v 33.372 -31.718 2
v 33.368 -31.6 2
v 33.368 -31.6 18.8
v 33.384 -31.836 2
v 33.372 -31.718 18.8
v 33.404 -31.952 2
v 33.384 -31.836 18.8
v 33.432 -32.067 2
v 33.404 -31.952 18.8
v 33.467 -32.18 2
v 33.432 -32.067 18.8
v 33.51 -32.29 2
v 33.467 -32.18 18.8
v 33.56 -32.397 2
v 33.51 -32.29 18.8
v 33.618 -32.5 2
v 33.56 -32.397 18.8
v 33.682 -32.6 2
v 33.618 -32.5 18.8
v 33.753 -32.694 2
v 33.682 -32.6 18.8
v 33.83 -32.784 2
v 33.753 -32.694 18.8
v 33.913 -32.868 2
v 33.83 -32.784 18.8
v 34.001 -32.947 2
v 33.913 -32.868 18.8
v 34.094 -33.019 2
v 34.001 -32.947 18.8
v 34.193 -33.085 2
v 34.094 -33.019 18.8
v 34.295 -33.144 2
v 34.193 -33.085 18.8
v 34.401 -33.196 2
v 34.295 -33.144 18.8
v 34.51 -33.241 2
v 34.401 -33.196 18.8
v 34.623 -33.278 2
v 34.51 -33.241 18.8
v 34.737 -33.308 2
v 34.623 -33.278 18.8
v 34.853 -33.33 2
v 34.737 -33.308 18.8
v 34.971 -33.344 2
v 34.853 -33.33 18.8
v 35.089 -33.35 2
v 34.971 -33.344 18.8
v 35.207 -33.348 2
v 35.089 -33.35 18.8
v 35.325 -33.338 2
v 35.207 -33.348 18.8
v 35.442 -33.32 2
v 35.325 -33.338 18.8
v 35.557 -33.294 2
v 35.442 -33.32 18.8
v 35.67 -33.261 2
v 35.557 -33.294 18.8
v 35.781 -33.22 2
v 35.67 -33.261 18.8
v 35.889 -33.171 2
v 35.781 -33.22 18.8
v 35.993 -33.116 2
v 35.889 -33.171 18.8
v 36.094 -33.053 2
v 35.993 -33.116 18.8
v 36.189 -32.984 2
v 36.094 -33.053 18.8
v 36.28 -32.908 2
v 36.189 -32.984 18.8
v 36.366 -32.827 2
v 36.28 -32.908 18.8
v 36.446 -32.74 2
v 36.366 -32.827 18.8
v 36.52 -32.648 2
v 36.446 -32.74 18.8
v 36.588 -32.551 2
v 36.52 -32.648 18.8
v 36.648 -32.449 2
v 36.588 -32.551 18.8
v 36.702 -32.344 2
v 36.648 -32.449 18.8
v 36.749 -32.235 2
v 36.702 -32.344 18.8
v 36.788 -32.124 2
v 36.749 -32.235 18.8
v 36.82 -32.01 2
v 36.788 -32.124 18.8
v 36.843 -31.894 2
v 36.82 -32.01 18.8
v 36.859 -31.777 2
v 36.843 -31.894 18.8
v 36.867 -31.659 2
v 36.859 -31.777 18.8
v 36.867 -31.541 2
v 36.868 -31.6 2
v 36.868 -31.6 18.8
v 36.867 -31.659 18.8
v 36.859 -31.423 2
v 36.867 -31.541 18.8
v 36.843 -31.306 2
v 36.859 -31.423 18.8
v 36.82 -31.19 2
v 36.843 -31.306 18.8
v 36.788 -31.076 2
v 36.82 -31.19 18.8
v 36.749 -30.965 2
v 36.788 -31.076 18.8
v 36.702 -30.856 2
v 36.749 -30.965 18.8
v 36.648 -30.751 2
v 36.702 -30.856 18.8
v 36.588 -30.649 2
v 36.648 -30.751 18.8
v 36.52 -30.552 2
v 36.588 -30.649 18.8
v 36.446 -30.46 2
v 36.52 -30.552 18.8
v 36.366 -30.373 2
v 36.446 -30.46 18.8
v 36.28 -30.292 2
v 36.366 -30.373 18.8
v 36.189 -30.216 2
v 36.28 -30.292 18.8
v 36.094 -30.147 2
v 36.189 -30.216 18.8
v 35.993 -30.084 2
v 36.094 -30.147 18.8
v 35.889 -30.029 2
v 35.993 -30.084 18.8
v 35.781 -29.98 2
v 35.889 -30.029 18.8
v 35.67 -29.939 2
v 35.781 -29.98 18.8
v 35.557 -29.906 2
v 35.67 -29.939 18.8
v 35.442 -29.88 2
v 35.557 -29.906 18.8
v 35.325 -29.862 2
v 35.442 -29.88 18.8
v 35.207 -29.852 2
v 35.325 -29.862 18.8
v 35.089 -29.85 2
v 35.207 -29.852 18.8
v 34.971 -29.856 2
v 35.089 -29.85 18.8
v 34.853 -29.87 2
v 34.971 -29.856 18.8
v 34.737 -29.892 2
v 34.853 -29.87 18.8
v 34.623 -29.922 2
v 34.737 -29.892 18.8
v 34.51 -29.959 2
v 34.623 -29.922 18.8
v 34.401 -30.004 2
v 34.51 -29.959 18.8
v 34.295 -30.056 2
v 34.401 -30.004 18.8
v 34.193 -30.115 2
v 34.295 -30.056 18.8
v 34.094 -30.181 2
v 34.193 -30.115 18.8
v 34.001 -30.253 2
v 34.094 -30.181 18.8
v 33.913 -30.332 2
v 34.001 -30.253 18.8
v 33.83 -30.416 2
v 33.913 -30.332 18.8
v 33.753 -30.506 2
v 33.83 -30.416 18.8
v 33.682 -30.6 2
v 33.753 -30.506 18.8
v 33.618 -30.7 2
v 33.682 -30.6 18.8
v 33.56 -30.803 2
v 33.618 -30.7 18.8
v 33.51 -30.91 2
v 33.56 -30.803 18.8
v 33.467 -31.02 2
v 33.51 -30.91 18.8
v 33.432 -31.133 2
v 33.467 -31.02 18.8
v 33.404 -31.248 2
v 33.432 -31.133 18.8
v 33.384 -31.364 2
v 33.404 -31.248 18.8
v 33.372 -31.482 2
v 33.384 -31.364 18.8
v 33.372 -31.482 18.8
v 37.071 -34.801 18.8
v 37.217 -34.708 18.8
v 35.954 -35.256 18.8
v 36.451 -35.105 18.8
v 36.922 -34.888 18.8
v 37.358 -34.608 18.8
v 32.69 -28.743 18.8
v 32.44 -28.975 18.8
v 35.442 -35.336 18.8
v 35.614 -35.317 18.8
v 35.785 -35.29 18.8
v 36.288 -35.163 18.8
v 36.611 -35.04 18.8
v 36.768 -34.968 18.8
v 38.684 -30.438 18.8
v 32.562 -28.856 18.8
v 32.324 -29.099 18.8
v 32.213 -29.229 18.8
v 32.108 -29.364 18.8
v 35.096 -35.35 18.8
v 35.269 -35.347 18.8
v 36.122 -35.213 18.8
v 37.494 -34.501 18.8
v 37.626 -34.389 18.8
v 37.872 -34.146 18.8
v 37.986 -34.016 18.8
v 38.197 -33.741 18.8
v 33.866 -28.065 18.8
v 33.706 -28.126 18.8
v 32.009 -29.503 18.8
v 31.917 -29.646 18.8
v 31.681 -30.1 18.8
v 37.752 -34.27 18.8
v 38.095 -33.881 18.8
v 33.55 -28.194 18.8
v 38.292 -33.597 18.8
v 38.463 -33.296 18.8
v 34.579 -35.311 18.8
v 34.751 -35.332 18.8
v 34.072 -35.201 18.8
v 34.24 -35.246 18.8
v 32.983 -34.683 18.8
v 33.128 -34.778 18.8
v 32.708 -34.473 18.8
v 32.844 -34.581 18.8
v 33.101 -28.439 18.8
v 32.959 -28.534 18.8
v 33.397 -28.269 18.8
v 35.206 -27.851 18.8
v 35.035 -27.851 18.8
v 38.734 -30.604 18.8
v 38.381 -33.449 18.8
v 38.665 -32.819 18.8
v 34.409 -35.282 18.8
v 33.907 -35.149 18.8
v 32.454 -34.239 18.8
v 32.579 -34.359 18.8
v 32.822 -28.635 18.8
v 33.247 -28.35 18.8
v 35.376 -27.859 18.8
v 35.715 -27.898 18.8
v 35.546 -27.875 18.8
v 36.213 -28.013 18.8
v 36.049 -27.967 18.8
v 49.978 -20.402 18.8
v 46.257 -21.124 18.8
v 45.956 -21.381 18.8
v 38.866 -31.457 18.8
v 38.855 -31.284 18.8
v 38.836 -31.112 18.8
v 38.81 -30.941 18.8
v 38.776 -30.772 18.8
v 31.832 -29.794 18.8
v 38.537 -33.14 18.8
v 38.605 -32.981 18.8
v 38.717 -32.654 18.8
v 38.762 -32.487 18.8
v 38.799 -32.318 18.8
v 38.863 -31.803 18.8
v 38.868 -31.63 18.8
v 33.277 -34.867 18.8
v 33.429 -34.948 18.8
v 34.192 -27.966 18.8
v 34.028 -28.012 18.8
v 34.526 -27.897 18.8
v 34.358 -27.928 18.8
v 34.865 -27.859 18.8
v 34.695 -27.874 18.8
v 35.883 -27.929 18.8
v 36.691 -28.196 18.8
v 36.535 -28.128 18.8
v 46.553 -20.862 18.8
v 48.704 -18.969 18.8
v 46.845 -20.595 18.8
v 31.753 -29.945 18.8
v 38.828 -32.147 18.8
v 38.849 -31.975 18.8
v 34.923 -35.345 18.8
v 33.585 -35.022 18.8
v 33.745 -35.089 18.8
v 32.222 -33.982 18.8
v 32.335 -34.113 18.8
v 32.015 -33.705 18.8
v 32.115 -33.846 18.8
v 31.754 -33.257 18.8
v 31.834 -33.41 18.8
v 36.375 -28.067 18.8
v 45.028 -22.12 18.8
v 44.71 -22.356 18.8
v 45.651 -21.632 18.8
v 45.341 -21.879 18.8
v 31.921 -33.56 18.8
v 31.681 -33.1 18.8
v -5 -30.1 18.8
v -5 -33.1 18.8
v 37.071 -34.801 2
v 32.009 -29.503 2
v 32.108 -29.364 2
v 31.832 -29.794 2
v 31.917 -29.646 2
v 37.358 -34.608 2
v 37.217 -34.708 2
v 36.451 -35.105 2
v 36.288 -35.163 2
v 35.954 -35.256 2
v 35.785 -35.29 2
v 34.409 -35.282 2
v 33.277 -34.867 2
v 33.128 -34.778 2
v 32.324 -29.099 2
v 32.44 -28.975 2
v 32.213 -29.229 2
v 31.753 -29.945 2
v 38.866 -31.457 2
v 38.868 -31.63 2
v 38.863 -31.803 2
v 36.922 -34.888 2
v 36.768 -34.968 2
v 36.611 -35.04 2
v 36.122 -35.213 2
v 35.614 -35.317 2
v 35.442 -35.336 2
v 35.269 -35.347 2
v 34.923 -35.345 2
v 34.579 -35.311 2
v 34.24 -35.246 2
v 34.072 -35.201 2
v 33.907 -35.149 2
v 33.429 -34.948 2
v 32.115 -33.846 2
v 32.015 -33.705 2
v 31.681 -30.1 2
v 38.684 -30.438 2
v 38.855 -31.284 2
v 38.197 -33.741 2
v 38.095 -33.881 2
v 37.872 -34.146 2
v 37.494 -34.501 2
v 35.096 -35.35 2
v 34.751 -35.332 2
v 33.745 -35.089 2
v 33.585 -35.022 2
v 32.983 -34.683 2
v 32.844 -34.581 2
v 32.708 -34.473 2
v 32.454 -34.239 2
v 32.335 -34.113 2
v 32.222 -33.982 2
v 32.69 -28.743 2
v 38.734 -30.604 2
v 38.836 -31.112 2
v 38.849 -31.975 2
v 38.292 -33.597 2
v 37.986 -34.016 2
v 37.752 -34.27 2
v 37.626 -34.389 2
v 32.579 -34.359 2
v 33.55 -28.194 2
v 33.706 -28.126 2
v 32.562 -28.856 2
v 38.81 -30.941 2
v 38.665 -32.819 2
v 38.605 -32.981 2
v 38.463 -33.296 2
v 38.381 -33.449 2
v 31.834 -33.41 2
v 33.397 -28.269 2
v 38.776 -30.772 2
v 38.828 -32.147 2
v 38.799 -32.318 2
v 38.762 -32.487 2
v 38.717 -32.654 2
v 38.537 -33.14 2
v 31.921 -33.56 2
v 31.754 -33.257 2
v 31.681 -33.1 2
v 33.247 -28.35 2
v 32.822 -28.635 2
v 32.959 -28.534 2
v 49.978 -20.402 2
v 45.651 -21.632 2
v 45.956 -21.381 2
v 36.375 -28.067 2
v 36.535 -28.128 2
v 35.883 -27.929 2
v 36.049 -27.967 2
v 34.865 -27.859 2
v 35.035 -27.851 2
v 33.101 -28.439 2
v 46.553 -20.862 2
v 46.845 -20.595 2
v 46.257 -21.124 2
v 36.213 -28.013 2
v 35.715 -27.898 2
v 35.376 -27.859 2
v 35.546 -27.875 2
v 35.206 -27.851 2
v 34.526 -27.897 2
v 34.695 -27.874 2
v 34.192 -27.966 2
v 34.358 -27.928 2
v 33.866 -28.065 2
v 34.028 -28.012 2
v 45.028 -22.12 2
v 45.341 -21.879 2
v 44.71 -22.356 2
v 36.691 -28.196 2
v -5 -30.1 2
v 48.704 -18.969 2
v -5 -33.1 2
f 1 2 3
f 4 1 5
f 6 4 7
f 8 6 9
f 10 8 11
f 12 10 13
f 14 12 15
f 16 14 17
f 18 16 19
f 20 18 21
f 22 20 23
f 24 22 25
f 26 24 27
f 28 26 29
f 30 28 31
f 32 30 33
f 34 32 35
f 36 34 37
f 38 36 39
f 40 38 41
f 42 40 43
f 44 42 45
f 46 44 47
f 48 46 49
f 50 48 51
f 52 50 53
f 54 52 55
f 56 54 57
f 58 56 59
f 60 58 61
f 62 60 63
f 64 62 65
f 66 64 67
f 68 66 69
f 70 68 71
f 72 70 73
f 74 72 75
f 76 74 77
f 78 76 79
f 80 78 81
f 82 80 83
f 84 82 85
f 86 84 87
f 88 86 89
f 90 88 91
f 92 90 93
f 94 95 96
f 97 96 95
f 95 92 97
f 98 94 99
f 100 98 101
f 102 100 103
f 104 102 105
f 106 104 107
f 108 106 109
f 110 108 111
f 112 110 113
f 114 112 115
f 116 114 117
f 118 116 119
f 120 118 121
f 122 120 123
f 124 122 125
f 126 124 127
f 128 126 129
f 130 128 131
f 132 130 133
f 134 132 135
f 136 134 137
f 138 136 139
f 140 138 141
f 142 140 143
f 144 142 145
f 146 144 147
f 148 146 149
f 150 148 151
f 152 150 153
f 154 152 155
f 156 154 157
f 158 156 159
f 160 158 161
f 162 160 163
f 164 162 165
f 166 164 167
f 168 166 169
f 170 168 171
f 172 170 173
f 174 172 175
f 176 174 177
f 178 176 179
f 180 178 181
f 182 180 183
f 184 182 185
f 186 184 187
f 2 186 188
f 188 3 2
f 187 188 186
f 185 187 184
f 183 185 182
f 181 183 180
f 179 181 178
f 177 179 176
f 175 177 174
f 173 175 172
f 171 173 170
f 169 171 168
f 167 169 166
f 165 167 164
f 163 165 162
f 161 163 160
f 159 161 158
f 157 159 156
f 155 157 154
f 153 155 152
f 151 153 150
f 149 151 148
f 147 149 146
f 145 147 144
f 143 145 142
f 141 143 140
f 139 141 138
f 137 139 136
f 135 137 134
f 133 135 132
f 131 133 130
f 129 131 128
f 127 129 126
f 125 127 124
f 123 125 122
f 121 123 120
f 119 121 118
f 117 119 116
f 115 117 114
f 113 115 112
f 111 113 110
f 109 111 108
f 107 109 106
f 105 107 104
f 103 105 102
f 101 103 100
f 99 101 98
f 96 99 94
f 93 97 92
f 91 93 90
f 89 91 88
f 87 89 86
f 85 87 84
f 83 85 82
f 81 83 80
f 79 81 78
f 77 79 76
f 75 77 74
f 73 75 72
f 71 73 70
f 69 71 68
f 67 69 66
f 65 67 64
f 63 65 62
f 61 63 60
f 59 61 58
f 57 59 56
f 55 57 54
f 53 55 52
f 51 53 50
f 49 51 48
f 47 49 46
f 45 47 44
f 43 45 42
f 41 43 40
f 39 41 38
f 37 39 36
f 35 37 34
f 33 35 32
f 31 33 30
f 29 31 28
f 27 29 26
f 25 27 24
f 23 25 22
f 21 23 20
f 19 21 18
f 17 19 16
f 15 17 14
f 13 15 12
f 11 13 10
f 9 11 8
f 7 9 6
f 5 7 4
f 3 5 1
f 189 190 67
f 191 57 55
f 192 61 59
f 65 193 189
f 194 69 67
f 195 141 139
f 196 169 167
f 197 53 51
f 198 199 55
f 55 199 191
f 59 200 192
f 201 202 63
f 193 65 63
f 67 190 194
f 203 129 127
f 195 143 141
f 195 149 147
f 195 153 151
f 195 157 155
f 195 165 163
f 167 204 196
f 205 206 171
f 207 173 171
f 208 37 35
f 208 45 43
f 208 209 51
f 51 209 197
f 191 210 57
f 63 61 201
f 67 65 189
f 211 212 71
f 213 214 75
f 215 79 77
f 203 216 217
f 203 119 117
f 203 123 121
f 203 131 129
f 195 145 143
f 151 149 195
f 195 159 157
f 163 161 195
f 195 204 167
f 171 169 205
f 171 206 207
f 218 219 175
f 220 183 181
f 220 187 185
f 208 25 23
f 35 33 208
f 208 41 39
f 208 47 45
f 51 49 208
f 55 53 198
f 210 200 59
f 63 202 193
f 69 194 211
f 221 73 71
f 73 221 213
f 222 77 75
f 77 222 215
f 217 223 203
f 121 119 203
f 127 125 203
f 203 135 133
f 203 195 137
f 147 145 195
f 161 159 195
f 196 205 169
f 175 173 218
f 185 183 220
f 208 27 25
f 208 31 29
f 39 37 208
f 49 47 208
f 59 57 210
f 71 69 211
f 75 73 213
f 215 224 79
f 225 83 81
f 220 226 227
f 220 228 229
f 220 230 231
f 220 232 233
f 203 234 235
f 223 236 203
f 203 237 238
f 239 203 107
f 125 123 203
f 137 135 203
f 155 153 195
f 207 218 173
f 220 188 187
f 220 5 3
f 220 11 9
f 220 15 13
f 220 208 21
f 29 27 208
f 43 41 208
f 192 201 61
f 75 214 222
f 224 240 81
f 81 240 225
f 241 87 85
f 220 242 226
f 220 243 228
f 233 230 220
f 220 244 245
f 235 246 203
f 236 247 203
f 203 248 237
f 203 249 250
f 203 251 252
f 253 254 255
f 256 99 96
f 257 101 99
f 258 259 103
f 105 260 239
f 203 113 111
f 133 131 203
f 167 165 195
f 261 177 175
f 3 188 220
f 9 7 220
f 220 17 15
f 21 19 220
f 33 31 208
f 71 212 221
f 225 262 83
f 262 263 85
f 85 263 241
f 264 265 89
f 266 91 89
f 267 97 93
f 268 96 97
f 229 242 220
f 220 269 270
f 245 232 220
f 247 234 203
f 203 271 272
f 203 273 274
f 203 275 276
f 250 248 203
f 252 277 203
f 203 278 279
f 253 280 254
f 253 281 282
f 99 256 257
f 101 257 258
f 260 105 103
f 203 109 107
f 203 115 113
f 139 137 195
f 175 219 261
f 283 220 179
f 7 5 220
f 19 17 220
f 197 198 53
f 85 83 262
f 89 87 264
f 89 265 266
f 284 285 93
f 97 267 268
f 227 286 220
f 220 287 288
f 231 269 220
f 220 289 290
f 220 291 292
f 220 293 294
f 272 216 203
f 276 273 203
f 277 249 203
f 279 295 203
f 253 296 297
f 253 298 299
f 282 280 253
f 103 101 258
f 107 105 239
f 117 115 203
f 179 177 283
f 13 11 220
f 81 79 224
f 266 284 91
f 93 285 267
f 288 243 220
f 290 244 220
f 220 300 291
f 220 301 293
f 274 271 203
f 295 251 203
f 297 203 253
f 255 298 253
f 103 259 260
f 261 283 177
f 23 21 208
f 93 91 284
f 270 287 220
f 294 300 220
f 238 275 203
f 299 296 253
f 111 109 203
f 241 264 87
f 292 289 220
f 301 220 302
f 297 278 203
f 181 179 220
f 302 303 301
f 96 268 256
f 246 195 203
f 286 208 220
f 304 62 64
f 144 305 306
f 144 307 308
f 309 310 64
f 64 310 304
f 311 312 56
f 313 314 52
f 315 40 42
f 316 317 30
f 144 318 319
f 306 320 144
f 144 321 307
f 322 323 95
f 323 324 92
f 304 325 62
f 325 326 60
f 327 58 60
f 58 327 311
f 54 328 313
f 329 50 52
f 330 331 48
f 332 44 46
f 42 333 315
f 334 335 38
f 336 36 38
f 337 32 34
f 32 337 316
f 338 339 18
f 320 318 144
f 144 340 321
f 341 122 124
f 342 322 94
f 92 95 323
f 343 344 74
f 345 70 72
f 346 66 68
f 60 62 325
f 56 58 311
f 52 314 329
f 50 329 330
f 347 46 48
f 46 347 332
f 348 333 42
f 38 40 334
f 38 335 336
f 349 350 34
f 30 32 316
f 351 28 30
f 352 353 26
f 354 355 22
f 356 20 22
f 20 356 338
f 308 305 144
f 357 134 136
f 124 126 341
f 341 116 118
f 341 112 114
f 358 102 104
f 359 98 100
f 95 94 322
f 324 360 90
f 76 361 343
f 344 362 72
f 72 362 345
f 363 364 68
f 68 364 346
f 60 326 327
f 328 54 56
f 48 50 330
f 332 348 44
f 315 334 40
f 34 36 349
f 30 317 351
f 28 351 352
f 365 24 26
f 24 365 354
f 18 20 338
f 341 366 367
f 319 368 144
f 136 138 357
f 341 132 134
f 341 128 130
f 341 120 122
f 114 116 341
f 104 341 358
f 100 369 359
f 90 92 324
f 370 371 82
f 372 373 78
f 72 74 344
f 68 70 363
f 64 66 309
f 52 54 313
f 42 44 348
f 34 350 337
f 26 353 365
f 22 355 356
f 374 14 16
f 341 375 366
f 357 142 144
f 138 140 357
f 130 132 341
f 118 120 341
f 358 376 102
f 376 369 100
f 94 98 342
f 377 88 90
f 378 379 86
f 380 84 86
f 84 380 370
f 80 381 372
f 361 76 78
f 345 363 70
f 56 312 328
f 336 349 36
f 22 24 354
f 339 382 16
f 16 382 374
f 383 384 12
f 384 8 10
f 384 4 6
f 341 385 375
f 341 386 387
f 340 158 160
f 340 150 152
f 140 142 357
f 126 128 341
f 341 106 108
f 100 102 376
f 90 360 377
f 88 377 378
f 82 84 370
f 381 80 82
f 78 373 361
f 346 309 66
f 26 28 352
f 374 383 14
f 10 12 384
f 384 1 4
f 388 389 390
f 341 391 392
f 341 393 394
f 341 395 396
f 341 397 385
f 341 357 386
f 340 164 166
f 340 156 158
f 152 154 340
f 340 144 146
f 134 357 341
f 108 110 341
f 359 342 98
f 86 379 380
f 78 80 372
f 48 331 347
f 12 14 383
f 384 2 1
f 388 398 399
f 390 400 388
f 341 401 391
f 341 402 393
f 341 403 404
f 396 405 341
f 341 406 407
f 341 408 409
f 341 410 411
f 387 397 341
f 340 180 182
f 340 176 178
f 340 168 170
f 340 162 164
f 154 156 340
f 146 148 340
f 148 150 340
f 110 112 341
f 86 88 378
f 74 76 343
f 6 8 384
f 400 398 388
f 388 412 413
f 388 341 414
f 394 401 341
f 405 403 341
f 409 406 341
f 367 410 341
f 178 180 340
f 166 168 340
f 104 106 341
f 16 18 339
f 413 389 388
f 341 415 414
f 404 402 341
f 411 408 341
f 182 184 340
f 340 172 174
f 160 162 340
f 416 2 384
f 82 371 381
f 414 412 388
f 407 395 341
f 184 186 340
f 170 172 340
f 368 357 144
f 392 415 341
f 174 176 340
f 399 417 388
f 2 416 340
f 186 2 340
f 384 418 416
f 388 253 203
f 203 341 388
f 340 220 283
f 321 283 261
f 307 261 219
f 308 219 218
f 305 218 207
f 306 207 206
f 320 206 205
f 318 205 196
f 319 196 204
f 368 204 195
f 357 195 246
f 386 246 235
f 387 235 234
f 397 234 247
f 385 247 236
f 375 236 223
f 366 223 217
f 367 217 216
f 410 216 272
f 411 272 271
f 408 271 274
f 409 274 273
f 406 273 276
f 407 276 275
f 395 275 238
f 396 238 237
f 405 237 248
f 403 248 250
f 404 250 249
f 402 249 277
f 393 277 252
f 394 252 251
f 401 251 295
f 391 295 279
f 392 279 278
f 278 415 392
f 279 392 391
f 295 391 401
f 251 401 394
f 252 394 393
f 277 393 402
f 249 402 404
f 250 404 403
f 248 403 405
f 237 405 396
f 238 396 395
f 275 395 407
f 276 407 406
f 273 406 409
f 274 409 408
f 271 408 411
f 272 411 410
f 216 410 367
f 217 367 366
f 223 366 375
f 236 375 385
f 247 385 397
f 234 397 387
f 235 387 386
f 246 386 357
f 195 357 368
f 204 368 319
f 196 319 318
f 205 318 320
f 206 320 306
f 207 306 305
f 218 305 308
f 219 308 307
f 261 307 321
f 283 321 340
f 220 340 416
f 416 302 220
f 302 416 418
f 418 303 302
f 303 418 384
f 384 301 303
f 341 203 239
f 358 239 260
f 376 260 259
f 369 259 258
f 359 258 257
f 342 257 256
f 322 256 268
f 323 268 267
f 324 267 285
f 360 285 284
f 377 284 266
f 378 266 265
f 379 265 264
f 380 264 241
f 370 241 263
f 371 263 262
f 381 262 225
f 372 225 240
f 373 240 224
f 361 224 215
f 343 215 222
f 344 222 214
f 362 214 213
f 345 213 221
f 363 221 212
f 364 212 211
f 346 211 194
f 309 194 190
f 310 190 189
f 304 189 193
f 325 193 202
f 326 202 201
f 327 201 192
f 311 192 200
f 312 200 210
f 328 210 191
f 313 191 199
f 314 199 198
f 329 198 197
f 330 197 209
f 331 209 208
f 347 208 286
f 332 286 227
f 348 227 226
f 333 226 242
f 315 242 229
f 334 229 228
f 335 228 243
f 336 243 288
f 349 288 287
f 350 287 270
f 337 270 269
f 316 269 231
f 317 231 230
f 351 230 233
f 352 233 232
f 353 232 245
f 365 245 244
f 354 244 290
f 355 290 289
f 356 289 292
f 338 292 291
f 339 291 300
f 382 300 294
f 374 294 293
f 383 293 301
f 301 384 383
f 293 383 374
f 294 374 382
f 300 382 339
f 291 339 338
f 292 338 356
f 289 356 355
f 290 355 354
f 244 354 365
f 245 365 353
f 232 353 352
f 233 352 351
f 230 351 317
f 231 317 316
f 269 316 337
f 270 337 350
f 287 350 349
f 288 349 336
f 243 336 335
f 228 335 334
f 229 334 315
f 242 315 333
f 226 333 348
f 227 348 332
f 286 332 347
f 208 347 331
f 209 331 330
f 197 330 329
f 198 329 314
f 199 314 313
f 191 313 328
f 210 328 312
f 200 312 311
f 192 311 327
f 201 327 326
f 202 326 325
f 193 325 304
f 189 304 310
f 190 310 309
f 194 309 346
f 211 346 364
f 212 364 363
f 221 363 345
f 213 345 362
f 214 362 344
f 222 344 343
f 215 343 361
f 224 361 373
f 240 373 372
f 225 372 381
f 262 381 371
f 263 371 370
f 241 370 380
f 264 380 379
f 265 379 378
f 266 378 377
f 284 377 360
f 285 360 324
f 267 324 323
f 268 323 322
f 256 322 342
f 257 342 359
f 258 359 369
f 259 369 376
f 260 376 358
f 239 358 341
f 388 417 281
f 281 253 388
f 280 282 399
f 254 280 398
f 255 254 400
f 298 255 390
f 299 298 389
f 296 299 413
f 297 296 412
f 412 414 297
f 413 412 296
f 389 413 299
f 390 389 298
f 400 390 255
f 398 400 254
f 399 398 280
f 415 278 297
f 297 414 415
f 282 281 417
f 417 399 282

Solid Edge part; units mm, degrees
sketch "Sketch1" plane through (0, 0, 2) normal (0, 0, 1) x (1, 0, 0)
  line L0 (49.4528, -16.8553) -> (36.691, -28.1957)
  arc A0 (31.6813, -30.1) -> (36.691, -28.1957) centre (35.1183, -31.6) cw
  line L1 (-5, -30.1) -> (31.6813, -30.1)
  line L2 (-5, -30.1) -> (-5, -33.1)
  line L3 (-5, -33.1) -> (31.6813, -33.1)
  line L4 (51.4456, -19.0978) -> (38.6838, -30.4383)
  arc A1 (38.6838, -30.4383) -> (31.6814, -33.1) centre (35.1183, -31.6) cw
  arc A2 (49.4528, -16.8553) -> (51.4456, -19.0978) centre (35.1183, -31.6) cw
  circle A3 centre (35.1183, -31.6) radius 1.75
extrude "ExtrudedProtrusion_1" add sketch "Sketch1" along normal blind 16.8
sketch "Sketch2" plane through (23.2228, -26.1027, 18.8) normal (0, 0, 1) x (-0.7475083, -0.6642525, 0)
  line L0 (-8.6773, 10.5109) -> (-25.7984, 3.6459)
  line L1 (-25.7984, 3.6459) -> (-25.7497, 10.5109)
  arc A0 (-25.7984, 11.5109) -> (-25.7497, 10.5109) centre (-5.2403, 12.0109) ccw
  line L2 (-25.7984, 11.5109) -> (-8.6773, 10.5109)
extrude "ExtrudedCutout_1" cut sketch "Sketch2" against normal blind 126.644
sketch "Sketch3" plane through (23.2228, -26.4602, 18.8) normal (0, 0, 1) x (-0.7475083, -0.6642525, 0)
  line L0 (-24.0241, 11.1261) -> (-27.0554, 10.1886)
  line L1 (-27.0554, 13.3363) -> (-27.0554, 10.1886)
  line L2 (-24.0241, 13.3363) -> (-27.0554, 13.3363)
  line L3 (-24.0241, 13.3363) -> (-24.0241, 11.1261)
extrude "ExtrudedCutout_2" cut sketch "Sketch3" against normal blind 19.824
sketch "Sketch4" plane through (22.489, -27.0845, 18.8) normal (0, 0, 1) x (-0.7475083, -0.6642525, 0)
  line L0 (-9.878, 10.2644) -> (-11.124, 7.7451)
  line L1 (-19.7514, 11.2253) -> (-9.878, 10.2644)
  arc A0 (-22.5172, 11.3271) -> (-19.7514, 11.2253) centre (-21.9785, -11.6575) cw
  line L2 (-22.5172, 11.3271) -> (-24.9872, 11.3468)
  line L3 (-24.9872, 11.1468) -> (-24.9872, 11.3468)
  line L4 (-24.9872, 11.1468) -> (-25.1125, 10.9171)
  line L5 (-25.1125, 10.9171) -> (-25.1125, 10.3529)
  arc A1 (-25.1125, 10.3529) -> (-11.1241, 7.7451) centre (-21.9785, -11.6575) cw
extrude "ExtrudedCutout_3" cut sketch "Sketch4" against normal blind 23.352
properties material "ABS Plastic, high impact"
